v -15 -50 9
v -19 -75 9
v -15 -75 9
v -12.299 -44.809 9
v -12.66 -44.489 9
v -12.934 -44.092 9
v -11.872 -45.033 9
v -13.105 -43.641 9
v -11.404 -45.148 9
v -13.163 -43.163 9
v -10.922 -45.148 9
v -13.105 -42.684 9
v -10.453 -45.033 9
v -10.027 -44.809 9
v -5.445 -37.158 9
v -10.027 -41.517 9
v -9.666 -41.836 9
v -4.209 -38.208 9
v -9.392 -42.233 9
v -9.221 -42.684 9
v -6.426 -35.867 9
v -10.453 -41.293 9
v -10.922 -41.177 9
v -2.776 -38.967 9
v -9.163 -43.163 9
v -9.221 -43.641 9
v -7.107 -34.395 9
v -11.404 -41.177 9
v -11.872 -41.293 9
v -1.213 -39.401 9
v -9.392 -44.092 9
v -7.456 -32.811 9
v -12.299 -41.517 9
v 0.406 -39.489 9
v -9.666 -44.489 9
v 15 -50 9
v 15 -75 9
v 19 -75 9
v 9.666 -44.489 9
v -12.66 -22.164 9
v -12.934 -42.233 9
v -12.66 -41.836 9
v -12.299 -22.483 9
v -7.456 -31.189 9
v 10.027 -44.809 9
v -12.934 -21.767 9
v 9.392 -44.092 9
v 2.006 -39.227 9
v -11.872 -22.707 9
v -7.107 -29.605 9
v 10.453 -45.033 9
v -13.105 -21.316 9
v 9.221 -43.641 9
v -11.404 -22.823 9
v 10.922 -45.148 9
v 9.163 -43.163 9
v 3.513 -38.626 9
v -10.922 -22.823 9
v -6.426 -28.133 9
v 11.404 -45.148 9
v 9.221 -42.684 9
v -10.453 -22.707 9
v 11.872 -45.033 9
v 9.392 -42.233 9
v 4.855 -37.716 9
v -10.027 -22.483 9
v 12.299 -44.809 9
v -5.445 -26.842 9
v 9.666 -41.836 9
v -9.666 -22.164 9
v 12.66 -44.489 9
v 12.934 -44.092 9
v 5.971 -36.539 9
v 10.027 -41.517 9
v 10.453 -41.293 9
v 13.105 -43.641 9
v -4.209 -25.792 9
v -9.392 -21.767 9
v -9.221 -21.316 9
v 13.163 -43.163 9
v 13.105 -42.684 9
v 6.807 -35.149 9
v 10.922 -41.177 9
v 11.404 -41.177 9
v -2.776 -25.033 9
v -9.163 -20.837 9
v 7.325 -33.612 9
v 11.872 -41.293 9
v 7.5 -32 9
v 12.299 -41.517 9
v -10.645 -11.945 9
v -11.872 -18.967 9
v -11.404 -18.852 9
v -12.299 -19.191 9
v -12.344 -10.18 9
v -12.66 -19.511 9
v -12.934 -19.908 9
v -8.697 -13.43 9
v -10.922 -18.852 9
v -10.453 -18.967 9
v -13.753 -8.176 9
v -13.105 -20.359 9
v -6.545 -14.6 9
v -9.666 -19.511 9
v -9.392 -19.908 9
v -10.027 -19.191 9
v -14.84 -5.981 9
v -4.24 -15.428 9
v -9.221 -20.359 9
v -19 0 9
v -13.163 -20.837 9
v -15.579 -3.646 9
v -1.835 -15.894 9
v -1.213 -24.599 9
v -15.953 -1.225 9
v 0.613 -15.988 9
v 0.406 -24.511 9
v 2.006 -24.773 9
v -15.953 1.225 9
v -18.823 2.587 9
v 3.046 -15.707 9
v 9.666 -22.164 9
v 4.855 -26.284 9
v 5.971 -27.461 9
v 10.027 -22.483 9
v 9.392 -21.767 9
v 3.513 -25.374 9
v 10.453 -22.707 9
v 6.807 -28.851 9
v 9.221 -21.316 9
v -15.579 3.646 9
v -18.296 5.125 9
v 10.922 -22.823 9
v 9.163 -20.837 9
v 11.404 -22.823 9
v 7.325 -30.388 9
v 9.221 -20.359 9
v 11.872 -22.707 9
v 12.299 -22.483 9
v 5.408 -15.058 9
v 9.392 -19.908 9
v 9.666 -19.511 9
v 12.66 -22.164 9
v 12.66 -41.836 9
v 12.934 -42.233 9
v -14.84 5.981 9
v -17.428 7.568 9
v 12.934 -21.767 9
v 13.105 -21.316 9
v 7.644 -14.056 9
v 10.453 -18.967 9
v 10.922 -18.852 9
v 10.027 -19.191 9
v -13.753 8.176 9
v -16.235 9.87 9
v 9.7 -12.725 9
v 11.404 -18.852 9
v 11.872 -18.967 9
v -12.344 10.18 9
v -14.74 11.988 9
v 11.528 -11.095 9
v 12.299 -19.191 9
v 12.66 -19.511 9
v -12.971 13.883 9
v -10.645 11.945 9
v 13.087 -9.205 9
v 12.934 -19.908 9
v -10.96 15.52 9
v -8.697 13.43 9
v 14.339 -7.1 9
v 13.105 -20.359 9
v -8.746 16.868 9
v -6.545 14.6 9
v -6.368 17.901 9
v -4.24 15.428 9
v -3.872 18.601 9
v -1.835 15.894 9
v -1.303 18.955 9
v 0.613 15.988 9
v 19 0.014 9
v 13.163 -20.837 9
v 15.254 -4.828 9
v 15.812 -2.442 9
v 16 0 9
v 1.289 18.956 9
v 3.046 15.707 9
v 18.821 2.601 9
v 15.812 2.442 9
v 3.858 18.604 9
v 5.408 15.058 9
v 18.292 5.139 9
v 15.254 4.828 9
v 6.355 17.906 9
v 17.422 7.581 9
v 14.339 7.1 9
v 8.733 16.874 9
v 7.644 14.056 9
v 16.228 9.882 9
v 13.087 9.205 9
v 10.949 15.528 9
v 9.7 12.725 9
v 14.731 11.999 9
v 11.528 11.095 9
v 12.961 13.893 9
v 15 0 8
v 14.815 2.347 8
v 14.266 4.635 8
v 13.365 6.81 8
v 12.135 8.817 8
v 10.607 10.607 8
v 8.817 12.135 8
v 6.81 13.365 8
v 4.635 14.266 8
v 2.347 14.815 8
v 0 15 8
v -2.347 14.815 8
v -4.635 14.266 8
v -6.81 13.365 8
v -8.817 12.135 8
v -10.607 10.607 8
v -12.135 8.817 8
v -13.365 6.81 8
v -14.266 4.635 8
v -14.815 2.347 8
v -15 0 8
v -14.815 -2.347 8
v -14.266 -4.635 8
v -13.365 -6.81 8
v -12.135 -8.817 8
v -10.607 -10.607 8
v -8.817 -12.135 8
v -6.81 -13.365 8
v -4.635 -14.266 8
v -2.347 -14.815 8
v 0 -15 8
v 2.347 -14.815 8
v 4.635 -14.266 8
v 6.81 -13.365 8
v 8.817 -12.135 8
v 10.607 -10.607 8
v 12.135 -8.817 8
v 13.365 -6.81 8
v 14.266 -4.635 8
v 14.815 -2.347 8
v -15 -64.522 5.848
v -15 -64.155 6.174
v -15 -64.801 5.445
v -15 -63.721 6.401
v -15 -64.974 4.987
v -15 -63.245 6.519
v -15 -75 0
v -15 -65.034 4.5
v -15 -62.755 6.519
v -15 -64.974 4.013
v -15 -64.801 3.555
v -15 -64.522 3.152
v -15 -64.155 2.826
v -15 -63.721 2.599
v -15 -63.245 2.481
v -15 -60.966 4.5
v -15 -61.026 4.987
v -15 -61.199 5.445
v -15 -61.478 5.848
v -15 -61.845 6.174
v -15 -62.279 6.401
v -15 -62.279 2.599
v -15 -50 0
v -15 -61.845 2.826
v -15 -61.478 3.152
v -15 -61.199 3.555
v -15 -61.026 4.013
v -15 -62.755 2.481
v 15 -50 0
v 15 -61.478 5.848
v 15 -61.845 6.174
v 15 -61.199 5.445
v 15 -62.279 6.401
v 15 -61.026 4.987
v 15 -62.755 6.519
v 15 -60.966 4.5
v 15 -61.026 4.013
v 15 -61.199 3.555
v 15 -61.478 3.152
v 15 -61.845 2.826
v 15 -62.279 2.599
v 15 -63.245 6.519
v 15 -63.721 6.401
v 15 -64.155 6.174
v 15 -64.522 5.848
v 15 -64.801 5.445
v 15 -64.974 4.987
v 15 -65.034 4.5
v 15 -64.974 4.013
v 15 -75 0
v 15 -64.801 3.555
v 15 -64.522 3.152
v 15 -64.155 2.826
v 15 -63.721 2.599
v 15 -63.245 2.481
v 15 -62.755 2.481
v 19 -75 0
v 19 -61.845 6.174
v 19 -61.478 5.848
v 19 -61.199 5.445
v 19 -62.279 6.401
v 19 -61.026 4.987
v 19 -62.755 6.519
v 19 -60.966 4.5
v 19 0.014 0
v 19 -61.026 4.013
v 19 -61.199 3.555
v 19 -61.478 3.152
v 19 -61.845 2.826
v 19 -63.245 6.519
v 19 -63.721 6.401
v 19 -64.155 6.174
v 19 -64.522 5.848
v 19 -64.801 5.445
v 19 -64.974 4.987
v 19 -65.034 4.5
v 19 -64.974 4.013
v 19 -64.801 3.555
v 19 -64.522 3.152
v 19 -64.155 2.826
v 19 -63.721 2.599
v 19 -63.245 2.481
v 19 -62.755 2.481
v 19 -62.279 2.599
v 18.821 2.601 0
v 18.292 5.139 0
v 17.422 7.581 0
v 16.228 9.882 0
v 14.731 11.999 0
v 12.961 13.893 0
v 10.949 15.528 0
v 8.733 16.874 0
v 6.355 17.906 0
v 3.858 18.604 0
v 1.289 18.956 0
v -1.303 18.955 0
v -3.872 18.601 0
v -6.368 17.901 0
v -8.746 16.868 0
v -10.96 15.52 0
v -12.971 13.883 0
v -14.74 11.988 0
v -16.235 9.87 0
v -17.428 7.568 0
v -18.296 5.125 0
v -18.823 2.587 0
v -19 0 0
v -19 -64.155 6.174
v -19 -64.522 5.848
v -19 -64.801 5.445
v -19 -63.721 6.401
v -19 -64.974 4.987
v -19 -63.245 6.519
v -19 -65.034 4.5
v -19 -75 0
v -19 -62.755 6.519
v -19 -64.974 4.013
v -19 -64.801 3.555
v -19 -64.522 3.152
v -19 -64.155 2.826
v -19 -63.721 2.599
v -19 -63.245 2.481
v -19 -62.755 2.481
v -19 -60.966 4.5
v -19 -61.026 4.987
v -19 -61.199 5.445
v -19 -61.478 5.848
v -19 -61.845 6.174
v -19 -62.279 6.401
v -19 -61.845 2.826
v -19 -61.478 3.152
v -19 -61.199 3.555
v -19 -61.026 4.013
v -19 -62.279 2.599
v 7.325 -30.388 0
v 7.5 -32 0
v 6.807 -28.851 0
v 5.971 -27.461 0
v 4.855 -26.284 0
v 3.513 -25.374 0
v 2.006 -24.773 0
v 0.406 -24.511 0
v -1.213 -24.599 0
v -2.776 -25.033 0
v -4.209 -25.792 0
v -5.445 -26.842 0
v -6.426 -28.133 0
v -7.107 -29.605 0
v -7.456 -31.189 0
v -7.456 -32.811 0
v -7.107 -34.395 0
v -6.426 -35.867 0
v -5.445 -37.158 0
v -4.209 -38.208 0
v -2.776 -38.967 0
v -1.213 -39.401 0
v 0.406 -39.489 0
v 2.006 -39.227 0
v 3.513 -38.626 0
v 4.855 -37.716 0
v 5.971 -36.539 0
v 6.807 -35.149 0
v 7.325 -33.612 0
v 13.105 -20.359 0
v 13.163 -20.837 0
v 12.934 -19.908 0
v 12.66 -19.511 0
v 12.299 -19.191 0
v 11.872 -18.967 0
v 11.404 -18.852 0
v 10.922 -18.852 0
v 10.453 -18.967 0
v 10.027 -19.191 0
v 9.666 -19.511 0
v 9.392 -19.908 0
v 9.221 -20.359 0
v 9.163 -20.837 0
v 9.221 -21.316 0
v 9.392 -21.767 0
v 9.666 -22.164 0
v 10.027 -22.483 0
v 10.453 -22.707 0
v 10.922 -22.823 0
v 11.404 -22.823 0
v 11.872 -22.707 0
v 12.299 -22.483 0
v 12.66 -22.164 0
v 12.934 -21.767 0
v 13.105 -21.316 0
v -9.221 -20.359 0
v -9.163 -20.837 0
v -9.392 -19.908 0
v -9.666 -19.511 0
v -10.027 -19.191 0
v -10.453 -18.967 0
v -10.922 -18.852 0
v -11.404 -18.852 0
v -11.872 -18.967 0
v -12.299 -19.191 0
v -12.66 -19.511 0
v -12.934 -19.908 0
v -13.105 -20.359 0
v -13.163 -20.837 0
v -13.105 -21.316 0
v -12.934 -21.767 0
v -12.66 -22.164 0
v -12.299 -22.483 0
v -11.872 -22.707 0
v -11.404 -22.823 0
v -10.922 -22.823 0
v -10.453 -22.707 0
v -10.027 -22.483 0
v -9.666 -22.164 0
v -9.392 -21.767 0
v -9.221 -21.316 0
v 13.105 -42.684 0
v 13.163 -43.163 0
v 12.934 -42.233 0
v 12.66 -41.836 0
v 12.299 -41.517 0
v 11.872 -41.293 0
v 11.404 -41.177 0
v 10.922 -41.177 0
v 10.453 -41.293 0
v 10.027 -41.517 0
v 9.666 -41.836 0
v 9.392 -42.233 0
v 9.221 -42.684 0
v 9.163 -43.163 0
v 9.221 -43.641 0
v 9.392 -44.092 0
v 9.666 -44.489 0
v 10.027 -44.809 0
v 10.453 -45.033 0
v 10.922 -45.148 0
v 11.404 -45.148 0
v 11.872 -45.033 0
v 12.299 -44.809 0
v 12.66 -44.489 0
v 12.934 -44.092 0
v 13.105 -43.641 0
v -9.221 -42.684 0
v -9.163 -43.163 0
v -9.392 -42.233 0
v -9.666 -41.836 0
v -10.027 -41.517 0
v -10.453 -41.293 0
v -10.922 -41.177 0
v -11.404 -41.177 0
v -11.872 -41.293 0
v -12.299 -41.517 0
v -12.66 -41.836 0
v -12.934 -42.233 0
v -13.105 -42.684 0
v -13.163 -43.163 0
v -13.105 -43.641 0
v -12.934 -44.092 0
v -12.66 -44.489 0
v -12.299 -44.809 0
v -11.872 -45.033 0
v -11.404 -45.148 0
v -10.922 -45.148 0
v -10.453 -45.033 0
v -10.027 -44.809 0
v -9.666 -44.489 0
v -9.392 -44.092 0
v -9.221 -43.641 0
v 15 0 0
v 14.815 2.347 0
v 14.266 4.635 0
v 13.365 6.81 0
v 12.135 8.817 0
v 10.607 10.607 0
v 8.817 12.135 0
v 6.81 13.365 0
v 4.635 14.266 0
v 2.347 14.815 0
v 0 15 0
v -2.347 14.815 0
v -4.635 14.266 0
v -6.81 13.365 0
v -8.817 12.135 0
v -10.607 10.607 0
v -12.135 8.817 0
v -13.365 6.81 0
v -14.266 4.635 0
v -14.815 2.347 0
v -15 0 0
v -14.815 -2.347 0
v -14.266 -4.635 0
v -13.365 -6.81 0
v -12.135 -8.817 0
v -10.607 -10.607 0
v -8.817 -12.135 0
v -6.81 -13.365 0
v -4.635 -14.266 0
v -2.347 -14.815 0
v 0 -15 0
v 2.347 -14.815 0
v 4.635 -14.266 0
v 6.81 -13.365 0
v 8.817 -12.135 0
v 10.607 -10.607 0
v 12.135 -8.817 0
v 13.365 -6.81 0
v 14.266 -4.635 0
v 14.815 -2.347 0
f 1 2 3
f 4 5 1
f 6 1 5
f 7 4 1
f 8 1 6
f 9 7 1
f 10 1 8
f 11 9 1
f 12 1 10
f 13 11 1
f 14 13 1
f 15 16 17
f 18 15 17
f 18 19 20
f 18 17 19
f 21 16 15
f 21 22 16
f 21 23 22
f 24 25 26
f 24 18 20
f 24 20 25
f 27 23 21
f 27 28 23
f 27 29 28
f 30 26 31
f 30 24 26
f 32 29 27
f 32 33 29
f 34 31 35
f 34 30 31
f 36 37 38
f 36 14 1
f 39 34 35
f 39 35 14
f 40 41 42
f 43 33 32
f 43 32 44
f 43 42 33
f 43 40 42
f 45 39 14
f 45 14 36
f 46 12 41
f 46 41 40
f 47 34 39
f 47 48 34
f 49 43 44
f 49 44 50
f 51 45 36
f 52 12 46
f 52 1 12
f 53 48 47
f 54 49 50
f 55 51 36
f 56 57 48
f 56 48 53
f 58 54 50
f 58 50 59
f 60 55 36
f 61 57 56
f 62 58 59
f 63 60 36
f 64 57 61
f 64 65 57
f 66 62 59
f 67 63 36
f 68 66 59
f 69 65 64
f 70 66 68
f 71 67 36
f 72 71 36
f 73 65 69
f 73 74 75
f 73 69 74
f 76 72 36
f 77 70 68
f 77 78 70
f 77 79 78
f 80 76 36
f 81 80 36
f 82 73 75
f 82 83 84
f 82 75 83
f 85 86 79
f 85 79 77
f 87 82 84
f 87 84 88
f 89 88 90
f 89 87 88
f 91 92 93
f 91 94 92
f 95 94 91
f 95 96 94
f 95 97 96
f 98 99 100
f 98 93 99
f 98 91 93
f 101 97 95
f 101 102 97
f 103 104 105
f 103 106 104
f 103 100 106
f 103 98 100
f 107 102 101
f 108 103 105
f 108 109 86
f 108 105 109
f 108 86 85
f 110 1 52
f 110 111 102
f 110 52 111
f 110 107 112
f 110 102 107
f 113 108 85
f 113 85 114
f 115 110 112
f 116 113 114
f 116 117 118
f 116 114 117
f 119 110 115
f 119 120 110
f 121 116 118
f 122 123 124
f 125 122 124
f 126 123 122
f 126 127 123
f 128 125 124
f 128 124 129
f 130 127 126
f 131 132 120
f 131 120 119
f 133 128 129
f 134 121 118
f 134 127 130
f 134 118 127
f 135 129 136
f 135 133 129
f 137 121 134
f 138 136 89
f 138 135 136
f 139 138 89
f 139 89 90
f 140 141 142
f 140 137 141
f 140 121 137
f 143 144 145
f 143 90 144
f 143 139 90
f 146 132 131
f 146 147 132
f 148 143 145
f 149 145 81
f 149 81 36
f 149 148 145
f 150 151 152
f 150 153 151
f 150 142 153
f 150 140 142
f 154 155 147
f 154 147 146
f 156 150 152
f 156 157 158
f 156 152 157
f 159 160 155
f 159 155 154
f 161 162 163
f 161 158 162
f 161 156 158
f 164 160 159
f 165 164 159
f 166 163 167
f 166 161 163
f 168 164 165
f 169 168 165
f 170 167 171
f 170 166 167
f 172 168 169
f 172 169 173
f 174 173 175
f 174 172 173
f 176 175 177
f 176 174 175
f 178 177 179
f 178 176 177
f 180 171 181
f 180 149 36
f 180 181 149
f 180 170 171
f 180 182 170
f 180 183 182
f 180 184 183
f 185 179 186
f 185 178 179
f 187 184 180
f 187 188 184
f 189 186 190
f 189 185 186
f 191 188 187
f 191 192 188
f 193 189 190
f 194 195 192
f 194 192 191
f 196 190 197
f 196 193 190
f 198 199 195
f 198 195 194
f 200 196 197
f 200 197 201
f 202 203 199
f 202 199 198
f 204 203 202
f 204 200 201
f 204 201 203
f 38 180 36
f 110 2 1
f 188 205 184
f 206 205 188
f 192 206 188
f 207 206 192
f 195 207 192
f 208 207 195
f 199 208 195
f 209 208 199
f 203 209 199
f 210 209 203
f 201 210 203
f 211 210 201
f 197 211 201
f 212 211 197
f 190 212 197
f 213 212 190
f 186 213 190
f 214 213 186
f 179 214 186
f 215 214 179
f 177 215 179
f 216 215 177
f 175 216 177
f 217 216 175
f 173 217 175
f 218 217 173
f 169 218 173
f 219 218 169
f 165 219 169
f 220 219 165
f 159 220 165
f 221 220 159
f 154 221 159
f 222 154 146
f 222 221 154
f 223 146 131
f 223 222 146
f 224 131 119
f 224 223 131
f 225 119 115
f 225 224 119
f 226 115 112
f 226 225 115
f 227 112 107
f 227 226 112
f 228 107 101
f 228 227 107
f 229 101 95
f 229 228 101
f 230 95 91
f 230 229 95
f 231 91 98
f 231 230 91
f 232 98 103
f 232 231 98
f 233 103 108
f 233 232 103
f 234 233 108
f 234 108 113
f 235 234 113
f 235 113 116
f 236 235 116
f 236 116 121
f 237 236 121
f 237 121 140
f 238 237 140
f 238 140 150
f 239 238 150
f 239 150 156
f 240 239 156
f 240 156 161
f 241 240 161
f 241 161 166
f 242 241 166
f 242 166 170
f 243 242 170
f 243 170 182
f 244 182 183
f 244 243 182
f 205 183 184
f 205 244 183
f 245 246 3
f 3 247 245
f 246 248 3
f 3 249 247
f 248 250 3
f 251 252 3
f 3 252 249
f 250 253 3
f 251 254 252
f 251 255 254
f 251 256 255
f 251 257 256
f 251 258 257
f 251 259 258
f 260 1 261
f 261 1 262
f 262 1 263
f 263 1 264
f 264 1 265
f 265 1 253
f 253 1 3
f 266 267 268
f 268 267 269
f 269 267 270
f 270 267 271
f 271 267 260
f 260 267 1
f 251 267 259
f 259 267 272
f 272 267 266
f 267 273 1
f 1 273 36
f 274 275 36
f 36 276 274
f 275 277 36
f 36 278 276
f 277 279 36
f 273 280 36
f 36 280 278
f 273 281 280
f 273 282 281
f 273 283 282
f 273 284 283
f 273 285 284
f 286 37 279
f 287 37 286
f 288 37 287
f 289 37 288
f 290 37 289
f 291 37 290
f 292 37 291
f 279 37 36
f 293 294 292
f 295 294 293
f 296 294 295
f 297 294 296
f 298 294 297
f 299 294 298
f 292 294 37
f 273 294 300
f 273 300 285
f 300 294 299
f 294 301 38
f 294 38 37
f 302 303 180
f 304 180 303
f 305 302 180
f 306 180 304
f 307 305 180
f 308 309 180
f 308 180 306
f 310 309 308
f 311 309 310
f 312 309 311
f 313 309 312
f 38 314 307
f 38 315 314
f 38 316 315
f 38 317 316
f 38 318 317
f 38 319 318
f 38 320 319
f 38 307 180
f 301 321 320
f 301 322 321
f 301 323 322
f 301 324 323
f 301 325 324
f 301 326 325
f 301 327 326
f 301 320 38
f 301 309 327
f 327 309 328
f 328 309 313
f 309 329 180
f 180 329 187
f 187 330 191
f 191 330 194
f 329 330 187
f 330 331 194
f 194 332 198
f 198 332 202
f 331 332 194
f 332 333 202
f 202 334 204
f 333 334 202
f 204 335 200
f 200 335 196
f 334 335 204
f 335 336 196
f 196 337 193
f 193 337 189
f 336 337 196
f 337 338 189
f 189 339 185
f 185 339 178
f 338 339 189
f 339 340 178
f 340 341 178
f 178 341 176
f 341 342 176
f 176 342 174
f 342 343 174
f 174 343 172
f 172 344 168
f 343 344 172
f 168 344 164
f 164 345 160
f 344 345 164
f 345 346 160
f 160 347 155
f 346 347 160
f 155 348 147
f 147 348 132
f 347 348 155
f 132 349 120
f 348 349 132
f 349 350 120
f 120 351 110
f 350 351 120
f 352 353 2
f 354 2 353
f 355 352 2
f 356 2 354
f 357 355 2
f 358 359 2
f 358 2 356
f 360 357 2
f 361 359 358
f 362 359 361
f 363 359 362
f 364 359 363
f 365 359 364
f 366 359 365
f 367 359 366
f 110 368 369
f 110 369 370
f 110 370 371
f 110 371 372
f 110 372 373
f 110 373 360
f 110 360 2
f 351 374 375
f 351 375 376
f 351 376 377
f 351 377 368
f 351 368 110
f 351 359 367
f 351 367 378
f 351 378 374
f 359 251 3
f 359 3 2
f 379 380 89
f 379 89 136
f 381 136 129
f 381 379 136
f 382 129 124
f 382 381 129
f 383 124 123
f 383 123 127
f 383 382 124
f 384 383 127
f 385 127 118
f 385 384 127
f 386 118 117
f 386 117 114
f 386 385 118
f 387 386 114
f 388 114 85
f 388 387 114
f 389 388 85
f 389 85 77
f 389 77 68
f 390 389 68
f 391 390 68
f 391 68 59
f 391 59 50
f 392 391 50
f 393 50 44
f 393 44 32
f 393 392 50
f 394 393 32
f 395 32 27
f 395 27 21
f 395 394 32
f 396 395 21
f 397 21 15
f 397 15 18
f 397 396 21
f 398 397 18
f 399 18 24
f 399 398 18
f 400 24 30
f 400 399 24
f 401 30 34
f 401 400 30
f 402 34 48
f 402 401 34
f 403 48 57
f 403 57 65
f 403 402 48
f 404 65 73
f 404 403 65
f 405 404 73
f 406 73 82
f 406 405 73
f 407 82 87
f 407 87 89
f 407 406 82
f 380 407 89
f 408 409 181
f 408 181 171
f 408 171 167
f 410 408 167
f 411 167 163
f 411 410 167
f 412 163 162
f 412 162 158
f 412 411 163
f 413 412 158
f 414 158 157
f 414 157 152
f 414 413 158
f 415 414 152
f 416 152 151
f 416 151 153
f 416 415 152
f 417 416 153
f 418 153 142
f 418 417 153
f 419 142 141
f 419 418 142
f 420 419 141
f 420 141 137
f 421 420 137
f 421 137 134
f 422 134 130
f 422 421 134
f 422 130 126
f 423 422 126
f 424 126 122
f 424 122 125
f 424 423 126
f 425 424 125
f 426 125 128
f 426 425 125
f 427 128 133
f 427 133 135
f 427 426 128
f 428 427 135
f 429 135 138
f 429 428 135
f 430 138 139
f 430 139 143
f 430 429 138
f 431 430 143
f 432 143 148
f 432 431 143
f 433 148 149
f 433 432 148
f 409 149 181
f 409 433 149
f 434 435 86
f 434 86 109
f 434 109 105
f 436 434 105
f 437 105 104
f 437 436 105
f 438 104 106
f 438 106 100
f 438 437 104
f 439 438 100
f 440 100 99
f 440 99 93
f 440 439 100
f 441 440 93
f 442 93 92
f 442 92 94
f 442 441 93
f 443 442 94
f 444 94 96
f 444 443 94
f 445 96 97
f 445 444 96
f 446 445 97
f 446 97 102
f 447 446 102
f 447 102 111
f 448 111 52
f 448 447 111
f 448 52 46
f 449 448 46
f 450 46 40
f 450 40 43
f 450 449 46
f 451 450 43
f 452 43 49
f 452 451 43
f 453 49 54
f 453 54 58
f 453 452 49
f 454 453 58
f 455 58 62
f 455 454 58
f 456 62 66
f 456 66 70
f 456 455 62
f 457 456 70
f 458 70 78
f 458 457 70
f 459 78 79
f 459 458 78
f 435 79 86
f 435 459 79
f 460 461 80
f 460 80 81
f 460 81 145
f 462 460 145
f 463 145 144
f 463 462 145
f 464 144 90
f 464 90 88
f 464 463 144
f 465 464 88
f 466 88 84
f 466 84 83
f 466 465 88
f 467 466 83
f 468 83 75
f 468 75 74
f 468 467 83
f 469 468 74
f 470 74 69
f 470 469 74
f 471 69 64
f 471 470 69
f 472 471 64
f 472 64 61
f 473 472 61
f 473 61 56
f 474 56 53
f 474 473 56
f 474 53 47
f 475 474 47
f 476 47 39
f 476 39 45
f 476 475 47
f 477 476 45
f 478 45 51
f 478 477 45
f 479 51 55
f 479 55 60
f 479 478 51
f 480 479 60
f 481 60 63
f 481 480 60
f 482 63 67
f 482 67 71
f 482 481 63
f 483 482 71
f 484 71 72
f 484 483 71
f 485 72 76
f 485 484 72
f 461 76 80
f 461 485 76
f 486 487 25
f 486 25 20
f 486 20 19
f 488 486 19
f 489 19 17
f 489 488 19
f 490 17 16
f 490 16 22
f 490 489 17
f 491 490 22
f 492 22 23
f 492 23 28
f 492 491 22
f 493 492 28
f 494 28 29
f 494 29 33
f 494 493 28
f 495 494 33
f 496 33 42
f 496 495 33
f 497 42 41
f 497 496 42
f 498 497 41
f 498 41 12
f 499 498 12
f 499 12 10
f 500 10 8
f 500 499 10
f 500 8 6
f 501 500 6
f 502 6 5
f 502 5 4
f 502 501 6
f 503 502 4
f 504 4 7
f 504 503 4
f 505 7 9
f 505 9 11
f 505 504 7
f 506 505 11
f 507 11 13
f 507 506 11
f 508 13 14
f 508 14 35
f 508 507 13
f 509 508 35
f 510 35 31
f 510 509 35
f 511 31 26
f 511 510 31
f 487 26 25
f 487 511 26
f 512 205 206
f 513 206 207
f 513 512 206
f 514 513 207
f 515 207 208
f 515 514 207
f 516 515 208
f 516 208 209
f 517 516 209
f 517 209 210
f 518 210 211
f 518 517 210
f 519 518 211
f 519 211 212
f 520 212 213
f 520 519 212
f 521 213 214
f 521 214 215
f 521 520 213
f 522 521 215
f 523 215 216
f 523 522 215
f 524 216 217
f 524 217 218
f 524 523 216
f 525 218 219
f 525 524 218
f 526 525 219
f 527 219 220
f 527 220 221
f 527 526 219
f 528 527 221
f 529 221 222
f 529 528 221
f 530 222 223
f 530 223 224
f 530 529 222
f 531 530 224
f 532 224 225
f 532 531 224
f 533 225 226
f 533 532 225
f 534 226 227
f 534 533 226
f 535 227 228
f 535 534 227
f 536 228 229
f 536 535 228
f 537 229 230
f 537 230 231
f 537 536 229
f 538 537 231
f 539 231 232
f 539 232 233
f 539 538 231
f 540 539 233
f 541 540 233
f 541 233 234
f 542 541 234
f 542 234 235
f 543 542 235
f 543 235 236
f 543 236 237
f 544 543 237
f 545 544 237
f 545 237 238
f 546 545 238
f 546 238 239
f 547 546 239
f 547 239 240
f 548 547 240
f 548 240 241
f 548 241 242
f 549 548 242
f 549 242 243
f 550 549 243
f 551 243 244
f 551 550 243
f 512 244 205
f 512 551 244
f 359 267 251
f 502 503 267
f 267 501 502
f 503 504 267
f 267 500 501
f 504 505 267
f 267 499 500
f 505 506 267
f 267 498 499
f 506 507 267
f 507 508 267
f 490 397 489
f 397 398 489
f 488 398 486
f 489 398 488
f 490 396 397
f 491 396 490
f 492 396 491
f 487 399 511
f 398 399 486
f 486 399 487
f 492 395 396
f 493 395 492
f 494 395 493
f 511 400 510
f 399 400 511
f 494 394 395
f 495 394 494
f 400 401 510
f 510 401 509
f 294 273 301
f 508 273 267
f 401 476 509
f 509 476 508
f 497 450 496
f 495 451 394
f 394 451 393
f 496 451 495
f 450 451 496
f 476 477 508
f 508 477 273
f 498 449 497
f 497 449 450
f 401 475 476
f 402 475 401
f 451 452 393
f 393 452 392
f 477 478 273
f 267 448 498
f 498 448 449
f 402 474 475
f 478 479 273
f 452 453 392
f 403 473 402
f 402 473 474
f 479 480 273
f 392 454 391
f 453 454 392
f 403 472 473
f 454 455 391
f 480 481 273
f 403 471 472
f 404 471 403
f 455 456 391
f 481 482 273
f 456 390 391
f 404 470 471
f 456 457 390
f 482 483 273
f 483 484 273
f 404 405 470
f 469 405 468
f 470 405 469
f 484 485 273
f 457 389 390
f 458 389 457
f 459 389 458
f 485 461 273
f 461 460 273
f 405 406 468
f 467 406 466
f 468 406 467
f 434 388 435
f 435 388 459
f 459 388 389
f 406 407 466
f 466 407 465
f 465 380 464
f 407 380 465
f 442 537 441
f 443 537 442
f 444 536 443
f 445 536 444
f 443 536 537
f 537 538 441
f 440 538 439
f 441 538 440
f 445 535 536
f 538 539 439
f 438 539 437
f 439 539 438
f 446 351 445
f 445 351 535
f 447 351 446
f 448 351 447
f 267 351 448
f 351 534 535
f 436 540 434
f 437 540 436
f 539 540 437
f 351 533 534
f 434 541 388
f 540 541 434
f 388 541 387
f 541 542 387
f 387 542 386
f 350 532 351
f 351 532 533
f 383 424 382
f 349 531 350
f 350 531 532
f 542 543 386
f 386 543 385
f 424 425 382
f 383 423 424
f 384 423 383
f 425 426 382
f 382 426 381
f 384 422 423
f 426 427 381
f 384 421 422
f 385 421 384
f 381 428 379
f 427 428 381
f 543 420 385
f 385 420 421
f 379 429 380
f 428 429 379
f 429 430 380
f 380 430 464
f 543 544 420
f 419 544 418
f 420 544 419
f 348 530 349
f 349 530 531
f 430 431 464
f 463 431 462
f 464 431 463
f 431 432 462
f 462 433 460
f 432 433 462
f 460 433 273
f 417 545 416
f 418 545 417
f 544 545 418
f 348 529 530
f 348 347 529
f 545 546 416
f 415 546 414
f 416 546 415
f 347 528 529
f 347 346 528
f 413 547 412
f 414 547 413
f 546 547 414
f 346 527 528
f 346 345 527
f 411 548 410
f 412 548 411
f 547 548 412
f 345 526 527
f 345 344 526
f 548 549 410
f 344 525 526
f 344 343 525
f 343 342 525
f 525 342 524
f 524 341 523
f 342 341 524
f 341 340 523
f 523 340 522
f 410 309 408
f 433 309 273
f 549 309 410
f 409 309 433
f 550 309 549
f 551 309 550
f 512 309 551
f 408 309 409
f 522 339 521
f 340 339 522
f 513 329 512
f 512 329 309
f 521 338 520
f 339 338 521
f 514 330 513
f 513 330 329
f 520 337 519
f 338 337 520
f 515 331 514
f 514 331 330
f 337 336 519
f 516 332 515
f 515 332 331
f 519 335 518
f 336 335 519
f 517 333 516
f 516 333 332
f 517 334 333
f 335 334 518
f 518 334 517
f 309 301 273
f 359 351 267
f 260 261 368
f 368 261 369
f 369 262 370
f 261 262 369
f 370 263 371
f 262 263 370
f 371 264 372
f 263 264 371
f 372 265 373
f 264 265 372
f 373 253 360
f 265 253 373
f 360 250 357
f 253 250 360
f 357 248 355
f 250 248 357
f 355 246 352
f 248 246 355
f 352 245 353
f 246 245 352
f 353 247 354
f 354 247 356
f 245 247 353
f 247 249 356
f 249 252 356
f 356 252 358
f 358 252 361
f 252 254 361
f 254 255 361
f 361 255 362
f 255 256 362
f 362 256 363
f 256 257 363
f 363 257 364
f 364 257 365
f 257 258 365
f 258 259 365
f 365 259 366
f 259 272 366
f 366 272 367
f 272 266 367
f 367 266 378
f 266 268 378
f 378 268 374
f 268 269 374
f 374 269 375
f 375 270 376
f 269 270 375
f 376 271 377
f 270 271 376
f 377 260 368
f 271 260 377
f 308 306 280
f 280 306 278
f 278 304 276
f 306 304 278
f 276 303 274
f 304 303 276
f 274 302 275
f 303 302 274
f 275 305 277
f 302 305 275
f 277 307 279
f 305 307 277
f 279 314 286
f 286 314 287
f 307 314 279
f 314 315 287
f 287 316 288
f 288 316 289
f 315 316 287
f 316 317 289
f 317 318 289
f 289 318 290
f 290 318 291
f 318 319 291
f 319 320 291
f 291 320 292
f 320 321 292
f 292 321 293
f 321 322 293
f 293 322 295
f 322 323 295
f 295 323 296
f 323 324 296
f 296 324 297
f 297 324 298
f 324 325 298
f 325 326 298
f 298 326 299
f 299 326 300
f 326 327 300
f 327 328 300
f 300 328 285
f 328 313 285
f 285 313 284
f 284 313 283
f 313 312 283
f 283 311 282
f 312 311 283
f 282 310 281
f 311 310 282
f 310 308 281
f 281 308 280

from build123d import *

# Parameters (mm, degrees)
SKETCH_R     = 15
SKETCH_R_2   = 7.5
SKETCH_R_3   = 2
PAD_DEPTH    = 9
SKETCH001_R  = 2.03355
POCKET_DEPTH = 38.000995
CHAMFER_SIZE = 1


with BuildPart() as part:
    # Sketch → Pad (new body)
    with BuildSketch(Plane.XY):
        with BuildLine():
            ThreePointArc((18.999995, 0.014309), (-0.007154, 18.999999), (-19, 0))
            Line((-19, -75), (-19, 0))
            Line((-15, -75), (-19, -75))
            Line((-15, -75), (-15, -50))
            Line((-15, -50), (15, -50))
            Line((15, -50), (15, -75))
            Line((18.999995, -75), (15, -75))
            Line((18.999995, 0.014309), (18.999995, -75))
        make_face()
        Circle(SKETCH_R, mode=Mode.SUBTRACT)
        with Locations((0, -32)):
            Circle(SKETCH_R_2, mode=Mode.SUBTRACT)
        with Locations((-11.162674, -20.837326)):
            Circle(SKETCH_R_3, mode=Mode.SUBTRACT)
        with Locations((11.162674, -20.837326)):
            Circle(SKETCH_R_3, mode=Mode.SUBTRACT)
        with Locations((-11.162674, -43.162674)):
            Circle(SKETCH_R_3, mode=Mode.SUBTRACT)
        with Locations((11.162674, -43.162674)):
            Circle(SKETCH_R_3, mode=Mode.SUBTRACT)
    extrude(amount=PAD_DEPTH)

    # Sketch001 (on Face5 of Pad) → Pocket (cut, through all)
    with BuildSketch(Plane.YZ.offset(18.999995)):
        with Locations((-63, 4.5)):
            Circle(SKETCH001_R)
    extrude(amount=-POCKET_DEPTH, mode=Mode.SUBTRACT)

    # Chamfer
    chamfer_edges = [part.edges().sort_by_distance(p)[0] for p in [
        (-15, 0, 9),
    ]]
    chamfer(chamfer_edges, length=CHAMFER_SIZE)


solid = part.part
